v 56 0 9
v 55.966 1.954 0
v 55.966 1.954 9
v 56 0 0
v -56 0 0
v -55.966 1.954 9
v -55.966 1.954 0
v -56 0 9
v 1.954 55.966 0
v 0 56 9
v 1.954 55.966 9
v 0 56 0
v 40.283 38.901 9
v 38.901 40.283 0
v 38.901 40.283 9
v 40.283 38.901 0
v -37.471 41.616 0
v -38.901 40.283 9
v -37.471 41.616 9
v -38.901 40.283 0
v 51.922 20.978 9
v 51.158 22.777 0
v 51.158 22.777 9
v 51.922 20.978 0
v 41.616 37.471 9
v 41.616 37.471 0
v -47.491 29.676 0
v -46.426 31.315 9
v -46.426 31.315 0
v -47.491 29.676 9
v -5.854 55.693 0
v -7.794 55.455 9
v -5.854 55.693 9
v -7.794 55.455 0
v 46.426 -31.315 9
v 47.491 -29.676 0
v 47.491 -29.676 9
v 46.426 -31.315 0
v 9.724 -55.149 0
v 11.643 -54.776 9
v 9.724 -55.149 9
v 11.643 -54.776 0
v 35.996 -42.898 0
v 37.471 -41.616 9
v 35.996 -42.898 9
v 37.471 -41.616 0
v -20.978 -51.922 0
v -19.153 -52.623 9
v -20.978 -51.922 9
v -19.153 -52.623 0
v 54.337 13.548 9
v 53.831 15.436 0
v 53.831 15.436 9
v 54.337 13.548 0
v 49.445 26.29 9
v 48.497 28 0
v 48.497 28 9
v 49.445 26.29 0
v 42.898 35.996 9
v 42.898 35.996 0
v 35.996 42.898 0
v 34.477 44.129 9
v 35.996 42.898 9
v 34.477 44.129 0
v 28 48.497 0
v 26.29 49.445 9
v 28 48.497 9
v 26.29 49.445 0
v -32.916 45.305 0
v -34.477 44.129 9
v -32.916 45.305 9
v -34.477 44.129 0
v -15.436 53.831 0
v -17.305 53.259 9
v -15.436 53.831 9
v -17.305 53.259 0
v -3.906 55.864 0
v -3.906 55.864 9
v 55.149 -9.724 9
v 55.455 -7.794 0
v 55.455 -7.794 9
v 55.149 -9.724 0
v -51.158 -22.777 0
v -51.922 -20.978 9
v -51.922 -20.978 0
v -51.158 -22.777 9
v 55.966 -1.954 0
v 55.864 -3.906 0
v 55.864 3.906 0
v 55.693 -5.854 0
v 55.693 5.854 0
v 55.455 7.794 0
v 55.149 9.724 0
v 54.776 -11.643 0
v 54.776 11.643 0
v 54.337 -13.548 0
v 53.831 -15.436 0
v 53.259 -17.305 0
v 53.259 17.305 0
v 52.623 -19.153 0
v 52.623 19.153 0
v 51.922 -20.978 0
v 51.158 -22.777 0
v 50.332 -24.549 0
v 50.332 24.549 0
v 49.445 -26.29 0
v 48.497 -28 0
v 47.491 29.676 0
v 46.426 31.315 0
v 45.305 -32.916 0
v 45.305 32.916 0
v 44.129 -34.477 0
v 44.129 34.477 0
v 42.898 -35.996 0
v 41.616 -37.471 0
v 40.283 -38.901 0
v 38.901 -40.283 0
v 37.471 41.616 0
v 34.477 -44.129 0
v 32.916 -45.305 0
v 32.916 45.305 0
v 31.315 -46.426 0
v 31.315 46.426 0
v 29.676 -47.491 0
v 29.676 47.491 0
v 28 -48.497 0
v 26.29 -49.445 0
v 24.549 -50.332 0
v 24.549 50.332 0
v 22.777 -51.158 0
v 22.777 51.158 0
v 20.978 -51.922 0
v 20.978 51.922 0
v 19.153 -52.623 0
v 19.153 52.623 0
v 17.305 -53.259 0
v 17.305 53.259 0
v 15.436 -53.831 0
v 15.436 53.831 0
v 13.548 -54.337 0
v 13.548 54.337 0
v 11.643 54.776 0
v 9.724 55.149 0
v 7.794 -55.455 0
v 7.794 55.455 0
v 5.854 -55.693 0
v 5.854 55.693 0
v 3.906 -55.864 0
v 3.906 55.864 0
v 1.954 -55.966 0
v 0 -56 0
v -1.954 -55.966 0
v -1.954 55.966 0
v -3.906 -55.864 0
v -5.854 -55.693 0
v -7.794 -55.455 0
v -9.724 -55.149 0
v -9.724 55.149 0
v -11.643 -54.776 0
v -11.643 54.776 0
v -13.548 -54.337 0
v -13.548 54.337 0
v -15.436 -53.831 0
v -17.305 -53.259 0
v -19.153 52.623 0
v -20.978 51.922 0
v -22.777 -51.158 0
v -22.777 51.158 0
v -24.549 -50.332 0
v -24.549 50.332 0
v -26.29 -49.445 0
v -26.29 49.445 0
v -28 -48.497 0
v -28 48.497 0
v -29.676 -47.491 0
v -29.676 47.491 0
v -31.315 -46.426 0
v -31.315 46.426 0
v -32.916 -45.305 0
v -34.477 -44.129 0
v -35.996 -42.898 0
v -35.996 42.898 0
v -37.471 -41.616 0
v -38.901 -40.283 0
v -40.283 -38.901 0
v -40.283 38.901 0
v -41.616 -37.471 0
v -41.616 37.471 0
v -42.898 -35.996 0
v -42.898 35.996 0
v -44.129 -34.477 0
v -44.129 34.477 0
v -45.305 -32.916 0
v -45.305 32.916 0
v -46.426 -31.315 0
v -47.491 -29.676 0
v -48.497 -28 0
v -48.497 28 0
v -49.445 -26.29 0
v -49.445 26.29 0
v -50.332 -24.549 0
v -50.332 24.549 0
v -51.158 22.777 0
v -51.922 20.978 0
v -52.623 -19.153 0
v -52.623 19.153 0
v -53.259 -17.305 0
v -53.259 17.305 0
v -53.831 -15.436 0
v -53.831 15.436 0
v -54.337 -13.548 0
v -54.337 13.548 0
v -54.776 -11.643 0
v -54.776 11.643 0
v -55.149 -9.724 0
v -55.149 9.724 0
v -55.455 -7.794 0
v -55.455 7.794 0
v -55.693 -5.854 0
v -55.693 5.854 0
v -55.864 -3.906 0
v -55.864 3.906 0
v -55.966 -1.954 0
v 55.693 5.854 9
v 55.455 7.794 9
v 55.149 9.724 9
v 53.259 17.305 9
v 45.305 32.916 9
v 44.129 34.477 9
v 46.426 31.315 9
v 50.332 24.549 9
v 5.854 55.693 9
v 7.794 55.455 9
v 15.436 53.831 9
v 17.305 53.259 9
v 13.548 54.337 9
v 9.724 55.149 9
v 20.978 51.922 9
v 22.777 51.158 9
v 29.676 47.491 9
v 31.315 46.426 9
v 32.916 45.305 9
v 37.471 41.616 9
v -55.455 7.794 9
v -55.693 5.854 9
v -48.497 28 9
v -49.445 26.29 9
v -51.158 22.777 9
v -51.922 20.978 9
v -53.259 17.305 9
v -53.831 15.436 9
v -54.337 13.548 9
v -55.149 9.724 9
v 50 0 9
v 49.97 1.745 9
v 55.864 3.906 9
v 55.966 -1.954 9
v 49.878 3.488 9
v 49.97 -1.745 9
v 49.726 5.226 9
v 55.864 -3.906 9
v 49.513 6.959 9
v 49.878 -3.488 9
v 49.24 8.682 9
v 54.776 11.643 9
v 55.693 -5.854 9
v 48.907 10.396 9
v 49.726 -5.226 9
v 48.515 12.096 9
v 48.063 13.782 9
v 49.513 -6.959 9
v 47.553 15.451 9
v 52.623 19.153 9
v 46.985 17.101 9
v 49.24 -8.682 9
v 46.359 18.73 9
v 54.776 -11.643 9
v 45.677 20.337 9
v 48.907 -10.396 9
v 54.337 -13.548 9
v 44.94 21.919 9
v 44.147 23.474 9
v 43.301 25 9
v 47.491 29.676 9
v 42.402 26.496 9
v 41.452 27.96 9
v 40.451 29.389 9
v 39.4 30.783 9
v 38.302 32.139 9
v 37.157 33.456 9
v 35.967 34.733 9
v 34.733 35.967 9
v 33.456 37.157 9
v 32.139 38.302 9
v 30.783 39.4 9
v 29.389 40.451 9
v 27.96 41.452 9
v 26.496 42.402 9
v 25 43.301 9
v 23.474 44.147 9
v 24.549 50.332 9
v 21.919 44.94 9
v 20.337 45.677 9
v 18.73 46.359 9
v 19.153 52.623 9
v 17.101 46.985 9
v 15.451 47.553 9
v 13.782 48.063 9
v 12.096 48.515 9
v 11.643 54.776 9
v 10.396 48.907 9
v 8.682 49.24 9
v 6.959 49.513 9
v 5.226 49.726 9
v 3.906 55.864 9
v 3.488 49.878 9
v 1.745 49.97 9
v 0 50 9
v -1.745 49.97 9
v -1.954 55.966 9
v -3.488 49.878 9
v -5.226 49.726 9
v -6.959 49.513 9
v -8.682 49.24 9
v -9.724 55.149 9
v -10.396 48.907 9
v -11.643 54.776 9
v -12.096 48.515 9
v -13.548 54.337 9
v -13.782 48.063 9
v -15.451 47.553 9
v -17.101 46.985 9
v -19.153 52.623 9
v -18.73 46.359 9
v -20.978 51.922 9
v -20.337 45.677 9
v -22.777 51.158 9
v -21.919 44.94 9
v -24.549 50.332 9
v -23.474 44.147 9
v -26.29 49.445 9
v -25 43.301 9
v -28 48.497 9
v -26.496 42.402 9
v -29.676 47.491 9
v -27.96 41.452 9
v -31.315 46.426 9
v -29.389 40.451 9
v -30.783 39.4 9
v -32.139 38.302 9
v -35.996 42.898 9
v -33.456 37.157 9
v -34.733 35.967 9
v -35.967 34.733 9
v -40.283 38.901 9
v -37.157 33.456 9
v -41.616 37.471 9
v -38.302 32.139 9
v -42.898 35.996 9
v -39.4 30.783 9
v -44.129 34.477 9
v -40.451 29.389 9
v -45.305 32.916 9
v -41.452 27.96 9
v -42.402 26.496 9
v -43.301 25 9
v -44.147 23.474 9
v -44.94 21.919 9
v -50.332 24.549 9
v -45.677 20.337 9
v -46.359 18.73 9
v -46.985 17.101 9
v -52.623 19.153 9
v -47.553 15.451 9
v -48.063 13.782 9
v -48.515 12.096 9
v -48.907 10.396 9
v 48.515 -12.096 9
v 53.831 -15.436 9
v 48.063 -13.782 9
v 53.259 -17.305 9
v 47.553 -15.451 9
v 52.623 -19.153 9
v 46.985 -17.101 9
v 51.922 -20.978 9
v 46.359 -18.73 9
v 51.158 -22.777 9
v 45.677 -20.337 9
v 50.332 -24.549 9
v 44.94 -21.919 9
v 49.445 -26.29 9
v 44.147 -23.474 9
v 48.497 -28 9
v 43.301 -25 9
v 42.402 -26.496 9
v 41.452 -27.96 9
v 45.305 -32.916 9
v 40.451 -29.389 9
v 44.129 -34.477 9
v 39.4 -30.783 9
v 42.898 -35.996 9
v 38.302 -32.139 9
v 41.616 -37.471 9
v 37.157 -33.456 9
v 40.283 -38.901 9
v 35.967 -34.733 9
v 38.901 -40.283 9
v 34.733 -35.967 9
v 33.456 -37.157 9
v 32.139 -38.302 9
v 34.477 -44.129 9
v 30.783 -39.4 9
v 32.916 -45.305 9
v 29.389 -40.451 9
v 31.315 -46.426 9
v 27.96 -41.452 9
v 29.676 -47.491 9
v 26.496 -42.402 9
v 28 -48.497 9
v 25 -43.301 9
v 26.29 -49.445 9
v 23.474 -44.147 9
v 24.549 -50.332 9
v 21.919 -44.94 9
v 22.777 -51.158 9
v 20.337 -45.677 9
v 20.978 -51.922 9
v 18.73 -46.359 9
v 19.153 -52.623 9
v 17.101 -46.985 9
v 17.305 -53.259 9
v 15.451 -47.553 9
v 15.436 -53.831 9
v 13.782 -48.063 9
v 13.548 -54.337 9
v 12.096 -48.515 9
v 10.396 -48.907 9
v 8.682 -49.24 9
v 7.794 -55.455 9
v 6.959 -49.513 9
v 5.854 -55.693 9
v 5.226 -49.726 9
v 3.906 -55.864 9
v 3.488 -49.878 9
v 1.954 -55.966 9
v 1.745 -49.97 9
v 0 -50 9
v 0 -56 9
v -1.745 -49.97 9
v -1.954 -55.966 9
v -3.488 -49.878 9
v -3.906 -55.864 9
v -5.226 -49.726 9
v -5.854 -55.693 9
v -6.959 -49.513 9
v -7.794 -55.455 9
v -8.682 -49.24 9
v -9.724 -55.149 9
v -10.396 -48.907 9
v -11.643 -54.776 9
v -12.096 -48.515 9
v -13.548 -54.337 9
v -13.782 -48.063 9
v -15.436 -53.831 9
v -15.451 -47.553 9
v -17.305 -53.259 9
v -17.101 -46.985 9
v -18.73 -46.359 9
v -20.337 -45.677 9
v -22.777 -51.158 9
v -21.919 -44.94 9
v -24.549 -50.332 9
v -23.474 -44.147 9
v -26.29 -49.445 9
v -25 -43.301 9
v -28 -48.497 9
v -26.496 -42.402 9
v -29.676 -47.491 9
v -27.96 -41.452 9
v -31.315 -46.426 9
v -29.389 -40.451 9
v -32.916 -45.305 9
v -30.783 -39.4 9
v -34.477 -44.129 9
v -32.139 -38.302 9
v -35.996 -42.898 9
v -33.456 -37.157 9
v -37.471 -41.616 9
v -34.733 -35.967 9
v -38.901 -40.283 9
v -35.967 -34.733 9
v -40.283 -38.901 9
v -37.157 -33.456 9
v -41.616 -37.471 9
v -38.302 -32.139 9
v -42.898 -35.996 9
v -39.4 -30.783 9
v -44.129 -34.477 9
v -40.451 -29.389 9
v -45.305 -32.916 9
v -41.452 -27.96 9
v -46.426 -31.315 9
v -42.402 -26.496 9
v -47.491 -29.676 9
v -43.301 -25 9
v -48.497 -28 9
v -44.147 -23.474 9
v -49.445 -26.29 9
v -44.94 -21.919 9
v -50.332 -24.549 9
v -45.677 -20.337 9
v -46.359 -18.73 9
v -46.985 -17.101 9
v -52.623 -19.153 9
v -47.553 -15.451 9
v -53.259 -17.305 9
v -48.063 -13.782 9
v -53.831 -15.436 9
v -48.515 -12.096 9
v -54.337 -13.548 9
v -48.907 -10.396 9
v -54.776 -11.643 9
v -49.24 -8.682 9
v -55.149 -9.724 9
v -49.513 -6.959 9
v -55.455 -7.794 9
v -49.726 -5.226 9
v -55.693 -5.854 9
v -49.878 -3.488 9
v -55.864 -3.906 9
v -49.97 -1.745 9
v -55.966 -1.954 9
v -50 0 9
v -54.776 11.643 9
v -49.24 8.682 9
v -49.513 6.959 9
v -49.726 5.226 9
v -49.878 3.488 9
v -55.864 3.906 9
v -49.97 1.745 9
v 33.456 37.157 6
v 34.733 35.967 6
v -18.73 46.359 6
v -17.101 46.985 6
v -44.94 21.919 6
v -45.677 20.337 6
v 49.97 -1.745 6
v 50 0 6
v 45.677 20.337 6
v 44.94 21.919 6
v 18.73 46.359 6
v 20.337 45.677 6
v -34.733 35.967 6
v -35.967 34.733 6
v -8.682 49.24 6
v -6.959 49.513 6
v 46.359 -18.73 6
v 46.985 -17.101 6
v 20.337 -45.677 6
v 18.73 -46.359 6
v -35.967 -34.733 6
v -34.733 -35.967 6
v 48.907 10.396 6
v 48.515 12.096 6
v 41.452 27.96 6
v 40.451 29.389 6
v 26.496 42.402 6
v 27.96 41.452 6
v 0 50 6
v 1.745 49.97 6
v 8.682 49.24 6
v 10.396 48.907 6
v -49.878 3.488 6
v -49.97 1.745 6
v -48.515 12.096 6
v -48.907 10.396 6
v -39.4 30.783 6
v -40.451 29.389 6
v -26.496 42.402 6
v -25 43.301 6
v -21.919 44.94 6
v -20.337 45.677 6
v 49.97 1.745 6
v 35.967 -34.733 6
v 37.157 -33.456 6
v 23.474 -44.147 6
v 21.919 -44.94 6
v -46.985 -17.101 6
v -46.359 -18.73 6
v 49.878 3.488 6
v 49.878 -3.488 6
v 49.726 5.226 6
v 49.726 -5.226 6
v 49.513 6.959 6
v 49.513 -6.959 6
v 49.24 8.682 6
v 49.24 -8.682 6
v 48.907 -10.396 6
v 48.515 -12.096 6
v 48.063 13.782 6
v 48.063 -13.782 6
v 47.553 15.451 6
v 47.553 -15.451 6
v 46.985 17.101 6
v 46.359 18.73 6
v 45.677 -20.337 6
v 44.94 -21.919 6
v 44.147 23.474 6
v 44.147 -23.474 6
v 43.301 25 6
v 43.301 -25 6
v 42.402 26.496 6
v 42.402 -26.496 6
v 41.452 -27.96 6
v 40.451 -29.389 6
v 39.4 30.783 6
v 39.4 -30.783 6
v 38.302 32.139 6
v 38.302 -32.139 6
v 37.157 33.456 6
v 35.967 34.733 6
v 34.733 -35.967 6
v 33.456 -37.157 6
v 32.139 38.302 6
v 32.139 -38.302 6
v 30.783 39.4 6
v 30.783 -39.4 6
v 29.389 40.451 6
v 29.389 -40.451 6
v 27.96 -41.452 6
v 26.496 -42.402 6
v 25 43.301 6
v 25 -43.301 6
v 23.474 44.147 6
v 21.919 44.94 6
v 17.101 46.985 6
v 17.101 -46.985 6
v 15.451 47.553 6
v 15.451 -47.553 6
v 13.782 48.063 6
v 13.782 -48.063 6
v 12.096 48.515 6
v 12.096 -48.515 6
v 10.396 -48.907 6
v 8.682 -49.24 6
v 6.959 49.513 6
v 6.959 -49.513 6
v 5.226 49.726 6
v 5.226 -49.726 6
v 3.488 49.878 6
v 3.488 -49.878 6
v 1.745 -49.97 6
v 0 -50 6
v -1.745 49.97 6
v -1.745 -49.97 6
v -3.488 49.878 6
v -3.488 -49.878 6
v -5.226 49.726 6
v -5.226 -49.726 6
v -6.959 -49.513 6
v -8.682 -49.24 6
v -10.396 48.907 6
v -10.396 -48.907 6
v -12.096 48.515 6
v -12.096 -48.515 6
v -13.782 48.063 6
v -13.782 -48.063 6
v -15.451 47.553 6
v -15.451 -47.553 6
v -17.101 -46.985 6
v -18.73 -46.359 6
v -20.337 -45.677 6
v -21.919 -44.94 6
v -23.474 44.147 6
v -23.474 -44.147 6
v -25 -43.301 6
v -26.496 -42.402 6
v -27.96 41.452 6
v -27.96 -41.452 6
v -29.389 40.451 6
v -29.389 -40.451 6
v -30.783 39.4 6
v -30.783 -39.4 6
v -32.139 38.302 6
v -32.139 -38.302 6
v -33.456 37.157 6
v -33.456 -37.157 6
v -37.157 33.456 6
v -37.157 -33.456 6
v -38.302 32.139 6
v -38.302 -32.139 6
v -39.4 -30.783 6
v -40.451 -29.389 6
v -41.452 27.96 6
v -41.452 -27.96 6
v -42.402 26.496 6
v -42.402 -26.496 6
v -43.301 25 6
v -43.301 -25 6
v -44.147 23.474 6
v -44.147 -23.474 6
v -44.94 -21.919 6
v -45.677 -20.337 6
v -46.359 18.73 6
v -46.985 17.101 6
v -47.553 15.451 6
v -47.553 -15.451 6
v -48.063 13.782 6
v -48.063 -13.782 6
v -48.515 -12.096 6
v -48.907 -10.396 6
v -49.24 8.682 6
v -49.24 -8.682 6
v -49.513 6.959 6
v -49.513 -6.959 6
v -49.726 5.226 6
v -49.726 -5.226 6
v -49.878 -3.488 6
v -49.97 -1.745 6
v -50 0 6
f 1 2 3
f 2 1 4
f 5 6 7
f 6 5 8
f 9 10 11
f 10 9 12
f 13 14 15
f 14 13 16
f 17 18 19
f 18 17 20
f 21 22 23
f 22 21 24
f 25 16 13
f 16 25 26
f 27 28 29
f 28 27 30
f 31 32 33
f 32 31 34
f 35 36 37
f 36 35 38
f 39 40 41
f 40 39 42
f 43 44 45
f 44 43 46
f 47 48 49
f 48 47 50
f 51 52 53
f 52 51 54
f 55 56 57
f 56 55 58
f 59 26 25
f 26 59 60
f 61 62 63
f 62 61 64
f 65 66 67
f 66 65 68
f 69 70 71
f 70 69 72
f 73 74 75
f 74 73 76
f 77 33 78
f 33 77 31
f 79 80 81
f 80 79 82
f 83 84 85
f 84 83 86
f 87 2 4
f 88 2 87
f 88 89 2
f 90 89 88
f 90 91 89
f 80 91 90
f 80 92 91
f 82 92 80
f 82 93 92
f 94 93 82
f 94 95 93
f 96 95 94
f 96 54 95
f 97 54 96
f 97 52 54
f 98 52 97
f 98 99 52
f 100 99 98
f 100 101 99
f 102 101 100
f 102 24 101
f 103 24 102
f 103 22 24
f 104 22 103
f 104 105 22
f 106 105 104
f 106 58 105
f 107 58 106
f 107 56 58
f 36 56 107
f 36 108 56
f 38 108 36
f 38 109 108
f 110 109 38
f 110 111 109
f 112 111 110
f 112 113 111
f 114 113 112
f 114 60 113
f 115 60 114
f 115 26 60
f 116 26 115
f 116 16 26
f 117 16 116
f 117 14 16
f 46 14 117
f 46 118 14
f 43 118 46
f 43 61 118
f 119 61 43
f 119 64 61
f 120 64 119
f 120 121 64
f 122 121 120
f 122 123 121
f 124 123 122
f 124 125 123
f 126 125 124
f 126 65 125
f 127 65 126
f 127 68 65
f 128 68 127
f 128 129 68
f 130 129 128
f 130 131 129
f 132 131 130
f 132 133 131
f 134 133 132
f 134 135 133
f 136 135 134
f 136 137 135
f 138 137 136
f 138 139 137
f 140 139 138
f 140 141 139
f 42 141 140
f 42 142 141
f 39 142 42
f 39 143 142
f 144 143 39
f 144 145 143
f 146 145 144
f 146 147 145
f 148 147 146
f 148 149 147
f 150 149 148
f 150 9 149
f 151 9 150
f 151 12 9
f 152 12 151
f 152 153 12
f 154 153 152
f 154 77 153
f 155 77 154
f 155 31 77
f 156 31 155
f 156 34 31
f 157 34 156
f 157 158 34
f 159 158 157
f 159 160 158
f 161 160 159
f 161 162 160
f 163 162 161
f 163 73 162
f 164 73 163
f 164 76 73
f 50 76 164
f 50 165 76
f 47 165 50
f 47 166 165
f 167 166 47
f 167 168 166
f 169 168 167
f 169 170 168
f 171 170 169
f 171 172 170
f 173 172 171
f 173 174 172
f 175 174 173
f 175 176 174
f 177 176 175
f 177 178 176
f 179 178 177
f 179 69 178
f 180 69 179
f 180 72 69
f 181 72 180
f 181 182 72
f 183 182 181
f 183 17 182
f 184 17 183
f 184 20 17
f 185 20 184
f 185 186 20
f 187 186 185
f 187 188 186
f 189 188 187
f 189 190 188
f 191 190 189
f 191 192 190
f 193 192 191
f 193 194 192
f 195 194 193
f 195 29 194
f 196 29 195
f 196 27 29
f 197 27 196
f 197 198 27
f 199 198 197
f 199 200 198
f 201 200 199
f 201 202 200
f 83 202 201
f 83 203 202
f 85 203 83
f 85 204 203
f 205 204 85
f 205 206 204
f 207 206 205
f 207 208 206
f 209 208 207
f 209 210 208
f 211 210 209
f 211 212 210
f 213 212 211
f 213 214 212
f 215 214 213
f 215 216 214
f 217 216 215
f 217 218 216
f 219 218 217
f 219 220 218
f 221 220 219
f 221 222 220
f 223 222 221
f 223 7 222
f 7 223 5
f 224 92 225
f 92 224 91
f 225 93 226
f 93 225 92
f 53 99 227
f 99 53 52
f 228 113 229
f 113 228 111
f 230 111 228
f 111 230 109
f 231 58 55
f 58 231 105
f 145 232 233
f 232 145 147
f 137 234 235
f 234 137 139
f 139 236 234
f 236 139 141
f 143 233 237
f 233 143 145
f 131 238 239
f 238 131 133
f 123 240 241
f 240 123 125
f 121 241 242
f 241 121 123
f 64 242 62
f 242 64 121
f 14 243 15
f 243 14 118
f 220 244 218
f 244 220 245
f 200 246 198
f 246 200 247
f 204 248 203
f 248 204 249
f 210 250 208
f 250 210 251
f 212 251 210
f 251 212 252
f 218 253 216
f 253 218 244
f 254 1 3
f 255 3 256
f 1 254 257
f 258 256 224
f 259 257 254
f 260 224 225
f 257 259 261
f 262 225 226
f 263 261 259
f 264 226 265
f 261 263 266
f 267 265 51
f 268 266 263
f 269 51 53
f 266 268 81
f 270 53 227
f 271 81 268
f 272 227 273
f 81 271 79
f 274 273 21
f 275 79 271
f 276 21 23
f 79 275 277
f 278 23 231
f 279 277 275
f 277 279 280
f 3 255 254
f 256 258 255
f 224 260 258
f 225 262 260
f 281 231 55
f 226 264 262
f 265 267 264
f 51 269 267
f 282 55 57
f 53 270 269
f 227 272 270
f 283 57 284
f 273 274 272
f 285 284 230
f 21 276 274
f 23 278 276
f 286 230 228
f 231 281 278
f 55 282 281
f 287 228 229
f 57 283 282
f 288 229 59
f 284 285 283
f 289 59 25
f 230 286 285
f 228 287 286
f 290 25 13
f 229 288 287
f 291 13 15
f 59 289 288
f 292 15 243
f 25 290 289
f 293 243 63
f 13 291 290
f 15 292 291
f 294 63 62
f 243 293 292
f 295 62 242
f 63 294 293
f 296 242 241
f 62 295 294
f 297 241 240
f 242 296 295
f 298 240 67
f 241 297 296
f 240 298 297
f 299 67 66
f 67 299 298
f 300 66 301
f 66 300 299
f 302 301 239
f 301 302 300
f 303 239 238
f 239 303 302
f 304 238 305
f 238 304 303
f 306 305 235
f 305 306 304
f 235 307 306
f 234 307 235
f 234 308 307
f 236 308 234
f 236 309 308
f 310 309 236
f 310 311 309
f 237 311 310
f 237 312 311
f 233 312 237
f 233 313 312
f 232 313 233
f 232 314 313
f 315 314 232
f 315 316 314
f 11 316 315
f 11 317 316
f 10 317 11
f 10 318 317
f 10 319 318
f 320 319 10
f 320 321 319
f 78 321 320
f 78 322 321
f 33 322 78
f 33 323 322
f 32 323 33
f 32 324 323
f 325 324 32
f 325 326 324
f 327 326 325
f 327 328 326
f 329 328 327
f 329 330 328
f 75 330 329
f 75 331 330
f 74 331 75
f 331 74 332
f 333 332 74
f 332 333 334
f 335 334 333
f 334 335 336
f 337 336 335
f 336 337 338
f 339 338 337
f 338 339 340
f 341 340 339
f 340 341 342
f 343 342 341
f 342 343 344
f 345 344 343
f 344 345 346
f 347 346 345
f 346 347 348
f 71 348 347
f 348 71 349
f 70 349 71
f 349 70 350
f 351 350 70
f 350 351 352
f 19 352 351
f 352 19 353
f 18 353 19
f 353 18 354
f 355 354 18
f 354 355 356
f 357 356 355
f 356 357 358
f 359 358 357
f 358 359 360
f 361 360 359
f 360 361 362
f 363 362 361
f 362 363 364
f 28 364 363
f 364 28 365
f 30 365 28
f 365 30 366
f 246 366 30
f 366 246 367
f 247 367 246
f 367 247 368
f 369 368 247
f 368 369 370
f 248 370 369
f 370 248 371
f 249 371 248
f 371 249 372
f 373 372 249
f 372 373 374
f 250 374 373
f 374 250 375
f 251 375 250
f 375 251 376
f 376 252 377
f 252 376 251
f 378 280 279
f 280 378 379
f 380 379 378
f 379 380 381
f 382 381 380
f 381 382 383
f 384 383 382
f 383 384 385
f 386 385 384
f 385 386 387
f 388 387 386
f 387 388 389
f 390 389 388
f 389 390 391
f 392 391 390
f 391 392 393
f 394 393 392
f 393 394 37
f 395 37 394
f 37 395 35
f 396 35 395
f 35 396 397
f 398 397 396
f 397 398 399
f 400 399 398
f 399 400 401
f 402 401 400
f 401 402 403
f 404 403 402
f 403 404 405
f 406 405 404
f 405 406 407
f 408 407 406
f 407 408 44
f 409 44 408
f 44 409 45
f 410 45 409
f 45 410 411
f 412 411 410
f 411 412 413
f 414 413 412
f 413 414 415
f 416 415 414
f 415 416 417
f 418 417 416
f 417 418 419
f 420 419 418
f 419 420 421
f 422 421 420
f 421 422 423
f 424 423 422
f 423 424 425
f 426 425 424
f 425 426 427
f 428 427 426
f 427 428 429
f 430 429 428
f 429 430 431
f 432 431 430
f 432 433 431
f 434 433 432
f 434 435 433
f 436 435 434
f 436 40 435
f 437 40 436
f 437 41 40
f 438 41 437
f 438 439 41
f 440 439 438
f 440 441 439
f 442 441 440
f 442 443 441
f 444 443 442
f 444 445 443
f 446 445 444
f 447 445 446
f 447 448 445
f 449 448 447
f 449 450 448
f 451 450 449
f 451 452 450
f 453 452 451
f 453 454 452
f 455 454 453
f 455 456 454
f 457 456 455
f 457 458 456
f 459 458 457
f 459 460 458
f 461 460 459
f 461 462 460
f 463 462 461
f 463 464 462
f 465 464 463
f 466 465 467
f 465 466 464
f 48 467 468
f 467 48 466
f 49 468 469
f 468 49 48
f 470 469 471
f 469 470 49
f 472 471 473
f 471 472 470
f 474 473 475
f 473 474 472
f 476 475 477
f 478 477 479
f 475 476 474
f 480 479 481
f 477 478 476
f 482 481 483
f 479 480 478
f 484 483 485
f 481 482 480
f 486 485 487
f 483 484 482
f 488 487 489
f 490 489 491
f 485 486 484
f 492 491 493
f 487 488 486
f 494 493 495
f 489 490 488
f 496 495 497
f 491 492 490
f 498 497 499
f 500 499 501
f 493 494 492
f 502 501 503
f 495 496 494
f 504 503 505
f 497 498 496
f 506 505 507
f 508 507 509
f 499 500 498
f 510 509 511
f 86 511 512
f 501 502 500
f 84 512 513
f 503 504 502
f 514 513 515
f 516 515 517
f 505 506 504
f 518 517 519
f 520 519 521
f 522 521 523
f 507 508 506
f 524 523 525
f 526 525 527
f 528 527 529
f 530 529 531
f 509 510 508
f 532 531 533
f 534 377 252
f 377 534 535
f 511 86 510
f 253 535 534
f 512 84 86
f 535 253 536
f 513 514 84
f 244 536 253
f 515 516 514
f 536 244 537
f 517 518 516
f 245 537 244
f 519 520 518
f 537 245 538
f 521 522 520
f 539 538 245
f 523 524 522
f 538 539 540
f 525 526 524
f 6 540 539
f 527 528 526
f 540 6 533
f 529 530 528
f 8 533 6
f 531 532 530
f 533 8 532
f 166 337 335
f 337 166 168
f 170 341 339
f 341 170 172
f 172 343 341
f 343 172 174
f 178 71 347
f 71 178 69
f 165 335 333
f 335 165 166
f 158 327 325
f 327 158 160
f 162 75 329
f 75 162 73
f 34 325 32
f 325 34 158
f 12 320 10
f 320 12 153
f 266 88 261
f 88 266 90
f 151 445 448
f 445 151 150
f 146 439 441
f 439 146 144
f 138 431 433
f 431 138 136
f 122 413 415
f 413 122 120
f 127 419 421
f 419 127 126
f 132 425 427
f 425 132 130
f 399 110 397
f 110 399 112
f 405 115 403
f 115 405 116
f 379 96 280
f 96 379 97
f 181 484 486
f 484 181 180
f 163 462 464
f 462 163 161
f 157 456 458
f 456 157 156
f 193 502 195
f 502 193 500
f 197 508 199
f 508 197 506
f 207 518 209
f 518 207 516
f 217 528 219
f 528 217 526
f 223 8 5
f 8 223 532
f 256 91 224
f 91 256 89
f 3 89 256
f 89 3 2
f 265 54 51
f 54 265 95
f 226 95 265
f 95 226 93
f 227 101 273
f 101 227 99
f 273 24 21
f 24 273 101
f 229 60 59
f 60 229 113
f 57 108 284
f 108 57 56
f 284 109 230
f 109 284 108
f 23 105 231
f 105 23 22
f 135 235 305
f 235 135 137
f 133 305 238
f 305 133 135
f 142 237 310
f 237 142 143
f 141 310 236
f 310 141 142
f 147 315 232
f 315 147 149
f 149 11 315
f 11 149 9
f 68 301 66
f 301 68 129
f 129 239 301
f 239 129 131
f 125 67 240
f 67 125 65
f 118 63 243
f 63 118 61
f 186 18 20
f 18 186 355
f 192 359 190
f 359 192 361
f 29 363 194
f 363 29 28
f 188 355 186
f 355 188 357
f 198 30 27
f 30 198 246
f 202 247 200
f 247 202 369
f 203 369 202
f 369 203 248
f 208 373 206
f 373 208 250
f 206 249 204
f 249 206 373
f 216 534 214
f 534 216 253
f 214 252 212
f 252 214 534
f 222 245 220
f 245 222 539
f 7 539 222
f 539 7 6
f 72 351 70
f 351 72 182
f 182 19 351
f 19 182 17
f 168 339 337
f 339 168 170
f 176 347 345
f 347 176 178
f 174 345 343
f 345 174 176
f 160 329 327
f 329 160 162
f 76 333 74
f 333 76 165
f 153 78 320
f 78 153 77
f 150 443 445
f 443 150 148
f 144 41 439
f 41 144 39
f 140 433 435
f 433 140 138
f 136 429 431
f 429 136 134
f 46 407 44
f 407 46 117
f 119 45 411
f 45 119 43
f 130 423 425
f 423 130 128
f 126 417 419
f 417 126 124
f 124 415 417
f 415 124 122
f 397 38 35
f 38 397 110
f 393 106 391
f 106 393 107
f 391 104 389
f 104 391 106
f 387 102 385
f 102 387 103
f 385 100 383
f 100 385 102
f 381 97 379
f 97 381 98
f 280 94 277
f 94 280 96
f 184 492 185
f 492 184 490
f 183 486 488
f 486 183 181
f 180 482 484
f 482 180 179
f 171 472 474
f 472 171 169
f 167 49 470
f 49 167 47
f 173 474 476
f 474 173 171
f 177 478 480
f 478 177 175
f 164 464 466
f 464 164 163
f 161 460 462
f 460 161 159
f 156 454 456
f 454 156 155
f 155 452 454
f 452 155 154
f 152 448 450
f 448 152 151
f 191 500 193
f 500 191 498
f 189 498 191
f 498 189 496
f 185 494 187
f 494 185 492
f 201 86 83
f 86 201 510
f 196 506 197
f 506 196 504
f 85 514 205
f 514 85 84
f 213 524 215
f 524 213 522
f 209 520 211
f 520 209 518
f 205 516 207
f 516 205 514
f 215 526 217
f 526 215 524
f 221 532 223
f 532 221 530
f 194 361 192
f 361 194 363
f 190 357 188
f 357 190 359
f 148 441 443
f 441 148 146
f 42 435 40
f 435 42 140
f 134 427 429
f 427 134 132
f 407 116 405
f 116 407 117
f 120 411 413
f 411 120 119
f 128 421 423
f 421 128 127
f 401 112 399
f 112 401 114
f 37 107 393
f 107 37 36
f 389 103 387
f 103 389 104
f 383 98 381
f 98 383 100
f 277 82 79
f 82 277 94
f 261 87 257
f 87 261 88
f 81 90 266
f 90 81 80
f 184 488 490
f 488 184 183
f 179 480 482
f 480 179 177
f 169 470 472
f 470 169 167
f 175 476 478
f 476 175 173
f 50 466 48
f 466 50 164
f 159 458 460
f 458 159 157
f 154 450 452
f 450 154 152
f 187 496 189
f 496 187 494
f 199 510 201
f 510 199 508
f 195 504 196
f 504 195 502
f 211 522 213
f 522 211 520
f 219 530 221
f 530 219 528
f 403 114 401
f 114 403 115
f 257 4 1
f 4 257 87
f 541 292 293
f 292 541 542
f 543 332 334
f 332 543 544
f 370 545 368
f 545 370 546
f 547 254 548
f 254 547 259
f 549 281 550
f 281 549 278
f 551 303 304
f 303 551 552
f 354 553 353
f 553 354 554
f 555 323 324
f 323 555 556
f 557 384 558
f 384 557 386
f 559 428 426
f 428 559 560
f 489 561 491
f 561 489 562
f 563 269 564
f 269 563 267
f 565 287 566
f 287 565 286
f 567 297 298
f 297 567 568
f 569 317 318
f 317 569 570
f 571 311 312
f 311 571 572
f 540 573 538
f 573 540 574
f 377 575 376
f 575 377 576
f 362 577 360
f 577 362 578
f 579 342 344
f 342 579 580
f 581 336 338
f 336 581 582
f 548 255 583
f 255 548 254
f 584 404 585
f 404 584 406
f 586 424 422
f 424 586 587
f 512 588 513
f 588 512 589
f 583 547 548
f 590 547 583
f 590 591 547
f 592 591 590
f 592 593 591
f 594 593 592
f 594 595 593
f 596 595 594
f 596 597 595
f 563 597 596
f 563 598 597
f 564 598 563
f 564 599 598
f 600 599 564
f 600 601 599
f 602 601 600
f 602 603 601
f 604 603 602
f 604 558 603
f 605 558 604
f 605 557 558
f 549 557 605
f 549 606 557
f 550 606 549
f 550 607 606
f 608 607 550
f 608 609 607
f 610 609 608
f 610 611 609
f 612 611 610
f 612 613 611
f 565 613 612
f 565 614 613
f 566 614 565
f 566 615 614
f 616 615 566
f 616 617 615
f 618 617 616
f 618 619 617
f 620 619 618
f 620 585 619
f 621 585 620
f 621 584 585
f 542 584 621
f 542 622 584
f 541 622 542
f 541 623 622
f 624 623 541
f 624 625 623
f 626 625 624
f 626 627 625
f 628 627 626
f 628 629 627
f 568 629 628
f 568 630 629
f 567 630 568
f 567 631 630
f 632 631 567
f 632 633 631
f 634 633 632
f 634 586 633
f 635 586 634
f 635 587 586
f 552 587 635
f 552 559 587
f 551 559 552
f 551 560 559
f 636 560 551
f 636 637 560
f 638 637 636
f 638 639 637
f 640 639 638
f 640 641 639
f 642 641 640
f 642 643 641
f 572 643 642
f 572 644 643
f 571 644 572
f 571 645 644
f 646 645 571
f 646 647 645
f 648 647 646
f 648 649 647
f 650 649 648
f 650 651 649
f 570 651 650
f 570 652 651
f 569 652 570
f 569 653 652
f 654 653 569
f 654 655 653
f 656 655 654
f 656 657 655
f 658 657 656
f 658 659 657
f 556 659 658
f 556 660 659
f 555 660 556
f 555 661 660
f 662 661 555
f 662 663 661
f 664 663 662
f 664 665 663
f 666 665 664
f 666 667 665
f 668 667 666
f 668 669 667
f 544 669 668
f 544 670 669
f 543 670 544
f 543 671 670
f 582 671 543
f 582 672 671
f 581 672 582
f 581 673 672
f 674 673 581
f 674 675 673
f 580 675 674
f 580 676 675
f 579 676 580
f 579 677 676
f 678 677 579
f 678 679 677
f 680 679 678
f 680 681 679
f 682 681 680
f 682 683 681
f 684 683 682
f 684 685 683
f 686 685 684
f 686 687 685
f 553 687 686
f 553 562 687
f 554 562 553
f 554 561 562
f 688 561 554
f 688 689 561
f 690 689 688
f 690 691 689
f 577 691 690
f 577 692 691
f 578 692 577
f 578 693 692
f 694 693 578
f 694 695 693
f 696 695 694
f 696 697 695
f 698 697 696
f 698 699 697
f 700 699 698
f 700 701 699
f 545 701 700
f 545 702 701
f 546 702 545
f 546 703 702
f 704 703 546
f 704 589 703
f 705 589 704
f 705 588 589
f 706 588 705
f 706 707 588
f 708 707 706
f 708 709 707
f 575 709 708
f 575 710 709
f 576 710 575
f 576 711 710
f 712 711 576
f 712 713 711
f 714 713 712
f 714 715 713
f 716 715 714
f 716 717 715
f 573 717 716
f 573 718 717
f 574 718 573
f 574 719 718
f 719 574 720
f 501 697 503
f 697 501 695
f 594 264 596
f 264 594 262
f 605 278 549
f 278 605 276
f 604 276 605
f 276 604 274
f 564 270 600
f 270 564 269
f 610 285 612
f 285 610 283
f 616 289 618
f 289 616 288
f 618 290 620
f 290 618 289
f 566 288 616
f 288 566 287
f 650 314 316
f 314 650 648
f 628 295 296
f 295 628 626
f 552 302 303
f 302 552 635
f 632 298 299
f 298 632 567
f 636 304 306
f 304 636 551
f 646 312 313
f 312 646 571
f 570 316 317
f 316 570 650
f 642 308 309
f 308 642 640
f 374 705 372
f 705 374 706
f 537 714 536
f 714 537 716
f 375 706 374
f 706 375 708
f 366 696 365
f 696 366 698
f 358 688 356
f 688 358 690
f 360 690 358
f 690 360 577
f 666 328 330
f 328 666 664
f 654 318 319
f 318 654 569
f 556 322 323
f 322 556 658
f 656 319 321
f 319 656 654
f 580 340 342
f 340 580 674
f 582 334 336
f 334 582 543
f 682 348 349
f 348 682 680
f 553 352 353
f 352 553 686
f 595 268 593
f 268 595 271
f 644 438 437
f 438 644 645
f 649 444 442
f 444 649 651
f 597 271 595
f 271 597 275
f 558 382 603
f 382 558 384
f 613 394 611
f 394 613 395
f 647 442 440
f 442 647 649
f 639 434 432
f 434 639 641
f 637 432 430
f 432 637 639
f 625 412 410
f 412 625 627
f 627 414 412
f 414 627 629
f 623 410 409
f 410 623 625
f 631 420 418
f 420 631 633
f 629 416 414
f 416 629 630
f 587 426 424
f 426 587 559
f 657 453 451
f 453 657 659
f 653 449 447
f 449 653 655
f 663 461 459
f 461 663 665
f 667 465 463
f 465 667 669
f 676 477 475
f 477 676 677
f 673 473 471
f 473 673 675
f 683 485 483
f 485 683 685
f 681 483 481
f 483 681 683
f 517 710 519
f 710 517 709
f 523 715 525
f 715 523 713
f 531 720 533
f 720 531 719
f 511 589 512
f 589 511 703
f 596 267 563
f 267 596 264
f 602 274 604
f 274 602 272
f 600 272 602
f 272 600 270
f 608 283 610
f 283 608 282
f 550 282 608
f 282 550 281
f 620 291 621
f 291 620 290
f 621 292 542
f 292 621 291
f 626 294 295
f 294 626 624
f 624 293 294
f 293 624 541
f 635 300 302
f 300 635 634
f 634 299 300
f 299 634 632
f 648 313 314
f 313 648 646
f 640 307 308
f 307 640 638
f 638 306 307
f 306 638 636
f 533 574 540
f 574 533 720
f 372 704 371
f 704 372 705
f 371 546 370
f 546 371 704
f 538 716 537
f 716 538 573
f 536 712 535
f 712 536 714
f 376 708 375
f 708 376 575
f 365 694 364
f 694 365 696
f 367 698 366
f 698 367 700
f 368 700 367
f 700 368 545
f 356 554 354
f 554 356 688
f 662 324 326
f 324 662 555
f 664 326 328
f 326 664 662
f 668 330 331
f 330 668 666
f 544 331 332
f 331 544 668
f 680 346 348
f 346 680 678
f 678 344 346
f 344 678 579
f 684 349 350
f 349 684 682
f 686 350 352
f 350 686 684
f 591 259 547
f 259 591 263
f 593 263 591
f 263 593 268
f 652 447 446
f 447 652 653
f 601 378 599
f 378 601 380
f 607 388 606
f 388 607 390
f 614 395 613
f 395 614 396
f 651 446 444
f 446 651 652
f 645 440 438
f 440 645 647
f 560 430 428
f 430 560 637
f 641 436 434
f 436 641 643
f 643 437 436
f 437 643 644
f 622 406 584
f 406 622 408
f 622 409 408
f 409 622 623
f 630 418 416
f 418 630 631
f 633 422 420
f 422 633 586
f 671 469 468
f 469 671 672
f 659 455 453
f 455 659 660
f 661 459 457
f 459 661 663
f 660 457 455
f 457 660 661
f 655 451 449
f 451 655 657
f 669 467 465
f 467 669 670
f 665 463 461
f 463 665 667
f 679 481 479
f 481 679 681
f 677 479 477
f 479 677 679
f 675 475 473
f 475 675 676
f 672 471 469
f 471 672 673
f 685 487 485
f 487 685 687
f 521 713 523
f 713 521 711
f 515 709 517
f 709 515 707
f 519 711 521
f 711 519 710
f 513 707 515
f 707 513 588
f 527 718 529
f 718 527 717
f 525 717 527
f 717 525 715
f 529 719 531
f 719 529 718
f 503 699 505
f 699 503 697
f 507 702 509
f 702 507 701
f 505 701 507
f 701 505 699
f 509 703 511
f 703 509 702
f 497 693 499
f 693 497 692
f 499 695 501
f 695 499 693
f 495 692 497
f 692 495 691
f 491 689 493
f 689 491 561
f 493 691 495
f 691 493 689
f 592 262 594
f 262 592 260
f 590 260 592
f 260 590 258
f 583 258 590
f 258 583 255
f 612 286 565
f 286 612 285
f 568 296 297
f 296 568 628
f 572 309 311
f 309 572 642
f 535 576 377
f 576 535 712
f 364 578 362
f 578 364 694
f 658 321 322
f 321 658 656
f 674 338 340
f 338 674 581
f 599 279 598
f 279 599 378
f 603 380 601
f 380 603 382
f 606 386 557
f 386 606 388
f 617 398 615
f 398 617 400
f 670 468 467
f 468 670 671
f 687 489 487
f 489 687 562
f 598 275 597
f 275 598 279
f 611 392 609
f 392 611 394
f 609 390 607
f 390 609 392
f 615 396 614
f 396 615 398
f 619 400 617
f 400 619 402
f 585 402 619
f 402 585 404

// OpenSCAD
pad = 1; //0.1; //Padding para abrir em cima
brd = 6; //borda - 3mm
hl = brd+3; //3+5; //altura lateral
rt = (100 + (2*brd)) / 2; //raio total + 2* borda_3mm
smooth = 180; //faces do cilindro

difference() {
  color("red")
  cylinder(hl,rt,rt,center=false,$fn=smooth);
    
  color("green")
	translate([0,0,brd])
	cylinder(hl-brd+pad,rt-brd,rt-brd,center=false,$fn=smooth);
}
